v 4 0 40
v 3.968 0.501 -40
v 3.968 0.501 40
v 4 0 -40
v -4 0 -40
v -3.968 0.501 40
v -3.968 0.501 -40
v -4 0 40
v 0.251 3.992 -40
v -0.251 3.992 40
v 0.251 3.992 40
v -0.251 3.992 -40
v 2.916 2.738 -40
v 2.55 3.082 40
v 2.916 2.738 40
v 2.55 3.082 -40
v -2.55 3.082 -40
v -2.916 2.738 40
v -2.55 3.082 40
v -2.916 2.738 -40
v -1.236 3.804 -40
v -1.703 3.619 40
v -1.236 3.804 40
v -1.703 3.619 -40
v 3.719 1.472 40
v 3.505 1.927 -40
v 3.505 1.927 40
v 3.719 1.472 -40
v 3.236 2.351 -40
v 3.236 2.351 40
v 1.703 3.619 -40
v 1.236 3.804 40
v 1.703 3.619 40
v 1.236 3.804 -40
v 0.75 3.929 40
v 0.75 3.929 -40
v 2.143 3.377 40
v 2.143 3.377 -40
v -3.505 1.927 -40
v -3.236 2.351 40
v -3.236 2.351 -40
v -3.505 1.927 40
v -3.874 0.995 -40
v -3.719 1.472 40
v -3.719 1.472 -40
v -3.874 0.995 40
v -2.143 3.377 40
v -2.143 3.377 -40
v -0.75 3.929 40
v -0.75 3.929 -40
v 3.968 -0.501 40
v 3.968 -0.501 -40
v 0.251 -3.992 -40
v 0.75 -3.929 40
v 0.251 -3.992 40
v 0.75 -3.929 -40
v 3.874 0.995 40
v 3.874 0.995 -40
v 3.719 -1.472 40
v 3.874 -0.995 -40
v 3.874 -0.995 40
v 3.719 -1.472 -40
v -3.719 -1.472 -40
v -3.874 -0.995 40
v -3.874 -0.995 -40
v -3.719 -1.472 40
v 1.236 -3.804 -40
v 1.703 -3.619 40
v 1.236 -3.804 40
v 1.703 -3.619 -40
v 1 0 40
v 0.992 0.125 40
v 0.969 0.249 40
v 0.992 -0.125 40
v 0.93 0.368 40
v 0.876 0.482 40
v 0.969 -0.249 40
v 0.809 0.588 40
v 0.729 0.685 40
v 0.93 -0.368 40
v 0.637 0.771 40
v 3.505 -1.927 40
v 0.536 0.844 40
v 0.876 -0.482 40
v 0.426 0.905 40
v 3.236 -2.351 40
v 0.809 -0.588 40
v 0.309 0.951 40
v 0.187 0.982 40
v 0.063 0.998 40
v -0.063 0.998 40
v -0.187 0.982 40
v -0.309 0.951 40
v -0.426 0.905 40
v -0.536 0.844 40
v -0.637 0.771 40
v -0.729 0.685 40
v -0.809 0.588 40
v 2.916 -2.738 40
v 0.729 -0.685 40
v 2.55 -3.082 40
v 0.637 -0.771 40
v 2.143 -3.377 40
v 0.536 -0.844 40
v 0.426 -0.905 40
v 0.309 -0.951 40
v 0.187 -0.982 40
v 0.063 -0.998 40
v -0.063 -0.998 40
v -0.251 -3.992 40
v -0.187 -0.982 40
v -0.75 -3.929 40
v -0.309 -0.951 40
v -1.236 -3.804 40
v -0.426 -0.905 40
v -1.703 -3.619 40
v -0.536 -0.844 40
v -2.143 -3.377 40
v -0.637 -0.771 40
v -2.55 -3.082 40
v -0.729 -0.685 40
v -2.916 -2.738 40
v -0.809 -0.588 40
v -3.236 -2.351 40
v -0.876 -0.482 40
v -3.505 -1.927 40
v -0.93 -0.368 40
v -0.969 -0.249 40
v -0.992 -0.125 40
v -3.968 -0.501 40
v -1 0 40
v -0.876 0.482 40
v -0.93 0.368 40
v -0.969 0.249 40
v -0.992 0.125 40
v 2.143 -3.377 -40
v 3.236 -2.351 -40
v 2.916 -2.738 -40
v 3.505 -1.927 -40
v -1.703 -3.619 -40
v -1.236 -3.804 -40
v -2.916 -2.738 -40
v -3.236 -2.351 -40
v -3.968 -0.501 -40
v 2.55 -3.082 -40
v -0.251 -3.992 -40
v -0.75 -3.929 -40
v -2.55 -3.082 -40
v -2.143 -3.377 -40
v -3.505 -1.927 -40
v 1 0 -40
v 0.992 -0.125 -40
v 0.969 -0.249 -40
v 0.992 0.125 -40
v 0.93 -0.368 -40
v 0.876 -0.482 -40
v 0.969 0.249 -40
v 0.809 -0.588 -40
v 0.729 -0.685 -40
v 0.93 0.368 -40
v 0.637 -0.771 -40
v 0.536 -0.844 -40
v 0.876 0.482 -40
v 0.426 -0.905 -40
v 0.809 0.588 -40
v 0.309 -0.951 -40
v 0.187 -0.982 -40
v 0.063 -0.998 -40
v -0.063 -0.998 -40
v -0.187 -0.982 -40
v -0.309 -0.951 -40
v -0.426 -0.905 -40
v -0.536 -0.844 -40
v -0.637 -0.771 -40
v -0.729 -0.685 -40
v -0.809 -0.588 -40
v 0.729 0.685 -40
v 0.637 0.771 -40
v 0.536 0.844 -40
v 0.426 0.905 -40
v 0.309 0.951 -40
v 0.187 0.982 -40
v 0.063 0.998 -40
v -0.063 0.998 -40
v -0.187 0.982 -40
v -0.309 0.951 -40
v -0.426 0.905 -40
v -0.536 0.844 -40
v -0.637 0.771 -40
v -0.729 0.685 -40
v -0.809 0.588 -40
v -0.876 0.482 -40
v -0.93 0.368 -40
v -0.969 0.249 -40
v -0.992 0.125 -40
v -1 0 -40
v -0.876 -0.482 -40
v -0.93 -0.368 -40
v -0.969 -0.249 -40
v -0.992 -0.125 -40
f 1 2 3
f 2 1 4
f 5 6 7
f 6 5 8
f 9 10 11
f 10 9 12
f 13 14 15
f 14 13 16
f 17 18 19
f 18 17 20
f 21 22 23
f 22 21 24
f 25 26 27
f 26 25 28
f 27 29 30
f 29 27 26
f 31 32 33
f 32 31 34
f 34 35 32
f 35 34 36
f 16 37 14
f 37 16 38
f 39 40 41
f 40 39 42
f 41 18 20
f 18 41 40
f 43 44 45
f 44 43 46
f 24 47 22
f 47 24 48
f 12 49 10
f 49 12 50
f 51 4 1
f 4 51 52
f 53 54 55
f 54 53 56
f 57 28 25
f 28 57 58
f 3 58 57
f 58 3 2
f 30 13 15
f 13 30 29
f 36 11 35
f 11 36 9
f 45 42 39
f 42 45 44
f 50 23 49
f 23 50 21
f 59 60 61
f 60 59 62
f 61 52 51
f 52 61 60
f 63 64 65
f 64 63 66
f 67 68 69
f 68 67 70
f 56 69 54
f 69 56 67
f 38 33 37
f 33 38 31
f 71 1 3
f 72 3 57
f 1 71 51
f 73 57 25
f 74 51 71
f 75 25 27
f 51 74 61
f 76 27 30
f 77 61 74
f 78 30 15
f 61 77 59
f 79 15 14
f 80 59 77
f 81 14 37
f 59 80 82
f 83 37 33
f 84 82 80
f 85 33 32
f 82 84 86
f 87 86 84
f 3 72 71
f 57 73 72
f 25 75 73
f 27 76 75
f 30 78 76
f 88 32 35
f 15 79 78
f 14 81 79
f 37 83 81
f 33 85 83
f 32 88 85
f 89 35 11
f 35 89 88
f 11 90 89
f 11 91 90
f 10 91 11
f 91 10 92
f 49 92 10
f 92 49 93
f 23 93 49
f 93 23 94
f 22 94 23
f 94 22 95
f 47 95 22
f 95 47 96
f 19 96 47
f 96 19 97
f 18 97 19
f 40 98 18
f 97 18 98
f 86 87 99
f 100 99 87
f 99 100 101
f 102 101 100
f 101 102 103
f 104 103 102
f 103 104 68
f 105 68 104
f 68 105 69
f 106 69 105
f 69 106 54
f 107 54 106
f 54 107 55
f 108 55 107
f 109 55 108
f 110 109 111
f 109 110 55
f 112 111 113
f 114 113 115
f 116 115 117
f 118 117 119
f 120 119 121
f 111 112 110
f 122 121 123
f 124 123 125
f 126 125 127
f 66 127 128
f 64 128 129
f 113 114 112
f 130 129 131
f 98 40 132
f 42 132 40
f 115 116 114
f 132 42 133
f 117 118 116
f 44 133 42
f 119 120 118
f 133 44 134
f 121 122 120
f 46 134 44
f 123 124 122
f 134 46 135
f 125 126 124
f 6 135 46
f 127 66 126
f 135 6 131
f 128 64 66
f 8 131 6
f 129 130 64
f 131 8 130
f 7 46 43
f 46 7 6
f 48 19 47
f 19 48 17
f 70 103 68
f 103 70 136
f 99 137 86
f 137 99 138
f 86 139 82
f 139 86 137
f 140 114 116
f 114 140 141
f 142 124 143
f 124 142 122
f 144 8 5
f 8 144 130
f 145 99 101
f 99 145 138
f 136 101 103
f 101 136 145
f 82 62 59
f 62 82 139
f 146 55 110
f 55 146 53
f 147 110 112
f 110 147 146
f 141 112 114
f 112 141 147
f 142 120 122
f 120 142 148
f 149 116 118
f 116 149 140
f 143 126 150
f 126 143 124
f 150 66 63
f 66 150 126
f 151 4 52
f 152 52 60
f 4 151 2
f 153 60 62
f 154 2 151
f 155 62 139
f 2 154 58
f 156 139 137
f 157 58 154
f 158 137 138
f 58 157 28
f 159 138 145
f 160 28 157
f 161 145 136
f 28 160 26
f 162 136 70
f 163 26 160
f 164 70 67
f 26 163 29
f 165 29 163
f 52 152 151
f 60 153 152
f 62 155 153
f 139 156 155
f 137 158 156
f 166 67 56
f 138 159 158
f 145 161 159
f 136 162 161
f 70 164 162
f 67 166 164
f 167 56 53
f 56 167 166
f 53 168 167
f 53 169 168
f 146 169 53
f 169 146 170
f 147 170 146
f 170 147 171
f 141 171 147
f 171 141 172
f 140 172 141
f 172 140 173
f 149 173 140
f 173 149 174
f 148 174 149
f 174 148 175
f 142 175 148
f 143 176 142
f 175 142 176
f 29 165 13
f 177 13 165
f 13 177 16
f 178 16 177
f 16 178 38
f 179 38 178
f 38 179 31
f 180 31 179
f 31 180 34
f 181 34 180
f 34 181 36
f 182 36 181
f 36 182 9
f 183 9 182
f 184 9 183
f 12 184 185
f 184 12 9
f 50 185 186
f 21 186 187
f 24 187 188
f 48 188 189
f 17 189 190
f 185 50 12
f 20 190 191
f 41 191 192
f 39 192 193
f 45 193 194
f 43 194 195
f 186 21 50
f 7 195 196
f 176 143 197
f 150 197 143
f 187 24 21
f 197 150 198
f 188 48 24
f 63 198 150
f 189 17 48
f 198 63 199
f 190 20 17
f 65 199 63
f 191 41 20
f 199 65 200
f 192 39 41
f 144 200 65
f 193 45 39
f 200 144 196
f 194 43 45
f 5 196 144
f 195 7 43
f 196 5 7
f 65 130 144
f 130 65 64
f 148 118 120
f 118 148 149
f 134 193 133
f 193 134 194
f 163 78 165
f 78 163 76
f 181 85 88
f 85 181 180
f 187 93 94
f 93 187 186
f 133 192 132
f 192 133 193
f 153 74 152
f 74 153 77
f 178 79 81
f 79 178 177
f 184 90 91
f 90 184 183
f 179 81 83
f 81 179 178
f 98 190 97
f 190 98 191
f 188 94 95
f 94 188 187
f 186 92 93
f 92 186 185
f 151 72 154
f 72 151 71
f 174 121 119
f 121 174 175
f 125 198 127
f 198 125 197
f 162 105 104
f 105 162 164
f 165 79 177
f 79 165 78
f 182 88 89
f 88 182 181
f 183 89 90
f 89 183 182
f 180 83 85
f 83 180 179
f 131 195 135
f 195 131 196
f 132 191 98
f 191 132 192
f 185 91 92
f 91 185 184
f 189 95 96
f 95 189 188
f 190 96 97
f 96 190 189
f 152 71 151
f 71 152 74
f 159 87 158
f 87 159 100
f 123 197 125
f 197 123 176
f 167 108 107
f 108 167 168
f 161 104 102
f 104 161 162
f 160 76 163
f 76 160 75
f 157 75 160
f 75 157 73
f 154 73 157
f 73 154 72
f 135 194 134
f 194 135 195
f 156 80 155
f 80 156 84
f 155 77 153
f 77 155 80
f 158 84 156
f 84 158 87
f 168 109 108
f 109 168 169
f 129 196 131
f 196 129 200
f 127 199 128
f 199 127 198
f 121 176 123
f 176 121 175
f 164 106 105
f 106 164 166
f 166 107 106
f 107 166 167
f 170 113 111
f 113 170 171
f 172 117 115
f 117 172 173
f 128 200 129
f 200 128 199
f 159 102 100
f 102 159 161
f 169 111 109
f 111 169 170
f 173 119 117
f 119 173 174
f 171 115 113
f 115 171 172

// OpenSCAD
$fn = 50;


difference() {
	union() {
		translate(v = [0, 0, -40.0000000000]) {
			cylinder(h = 80, r = 4.0000000000);
		}
	}
	union() {
		translate(v = [0, 0, -100.0000000000]) {
			cylinder(h = 200, r = 1.0000000000);
		}
	}
}
